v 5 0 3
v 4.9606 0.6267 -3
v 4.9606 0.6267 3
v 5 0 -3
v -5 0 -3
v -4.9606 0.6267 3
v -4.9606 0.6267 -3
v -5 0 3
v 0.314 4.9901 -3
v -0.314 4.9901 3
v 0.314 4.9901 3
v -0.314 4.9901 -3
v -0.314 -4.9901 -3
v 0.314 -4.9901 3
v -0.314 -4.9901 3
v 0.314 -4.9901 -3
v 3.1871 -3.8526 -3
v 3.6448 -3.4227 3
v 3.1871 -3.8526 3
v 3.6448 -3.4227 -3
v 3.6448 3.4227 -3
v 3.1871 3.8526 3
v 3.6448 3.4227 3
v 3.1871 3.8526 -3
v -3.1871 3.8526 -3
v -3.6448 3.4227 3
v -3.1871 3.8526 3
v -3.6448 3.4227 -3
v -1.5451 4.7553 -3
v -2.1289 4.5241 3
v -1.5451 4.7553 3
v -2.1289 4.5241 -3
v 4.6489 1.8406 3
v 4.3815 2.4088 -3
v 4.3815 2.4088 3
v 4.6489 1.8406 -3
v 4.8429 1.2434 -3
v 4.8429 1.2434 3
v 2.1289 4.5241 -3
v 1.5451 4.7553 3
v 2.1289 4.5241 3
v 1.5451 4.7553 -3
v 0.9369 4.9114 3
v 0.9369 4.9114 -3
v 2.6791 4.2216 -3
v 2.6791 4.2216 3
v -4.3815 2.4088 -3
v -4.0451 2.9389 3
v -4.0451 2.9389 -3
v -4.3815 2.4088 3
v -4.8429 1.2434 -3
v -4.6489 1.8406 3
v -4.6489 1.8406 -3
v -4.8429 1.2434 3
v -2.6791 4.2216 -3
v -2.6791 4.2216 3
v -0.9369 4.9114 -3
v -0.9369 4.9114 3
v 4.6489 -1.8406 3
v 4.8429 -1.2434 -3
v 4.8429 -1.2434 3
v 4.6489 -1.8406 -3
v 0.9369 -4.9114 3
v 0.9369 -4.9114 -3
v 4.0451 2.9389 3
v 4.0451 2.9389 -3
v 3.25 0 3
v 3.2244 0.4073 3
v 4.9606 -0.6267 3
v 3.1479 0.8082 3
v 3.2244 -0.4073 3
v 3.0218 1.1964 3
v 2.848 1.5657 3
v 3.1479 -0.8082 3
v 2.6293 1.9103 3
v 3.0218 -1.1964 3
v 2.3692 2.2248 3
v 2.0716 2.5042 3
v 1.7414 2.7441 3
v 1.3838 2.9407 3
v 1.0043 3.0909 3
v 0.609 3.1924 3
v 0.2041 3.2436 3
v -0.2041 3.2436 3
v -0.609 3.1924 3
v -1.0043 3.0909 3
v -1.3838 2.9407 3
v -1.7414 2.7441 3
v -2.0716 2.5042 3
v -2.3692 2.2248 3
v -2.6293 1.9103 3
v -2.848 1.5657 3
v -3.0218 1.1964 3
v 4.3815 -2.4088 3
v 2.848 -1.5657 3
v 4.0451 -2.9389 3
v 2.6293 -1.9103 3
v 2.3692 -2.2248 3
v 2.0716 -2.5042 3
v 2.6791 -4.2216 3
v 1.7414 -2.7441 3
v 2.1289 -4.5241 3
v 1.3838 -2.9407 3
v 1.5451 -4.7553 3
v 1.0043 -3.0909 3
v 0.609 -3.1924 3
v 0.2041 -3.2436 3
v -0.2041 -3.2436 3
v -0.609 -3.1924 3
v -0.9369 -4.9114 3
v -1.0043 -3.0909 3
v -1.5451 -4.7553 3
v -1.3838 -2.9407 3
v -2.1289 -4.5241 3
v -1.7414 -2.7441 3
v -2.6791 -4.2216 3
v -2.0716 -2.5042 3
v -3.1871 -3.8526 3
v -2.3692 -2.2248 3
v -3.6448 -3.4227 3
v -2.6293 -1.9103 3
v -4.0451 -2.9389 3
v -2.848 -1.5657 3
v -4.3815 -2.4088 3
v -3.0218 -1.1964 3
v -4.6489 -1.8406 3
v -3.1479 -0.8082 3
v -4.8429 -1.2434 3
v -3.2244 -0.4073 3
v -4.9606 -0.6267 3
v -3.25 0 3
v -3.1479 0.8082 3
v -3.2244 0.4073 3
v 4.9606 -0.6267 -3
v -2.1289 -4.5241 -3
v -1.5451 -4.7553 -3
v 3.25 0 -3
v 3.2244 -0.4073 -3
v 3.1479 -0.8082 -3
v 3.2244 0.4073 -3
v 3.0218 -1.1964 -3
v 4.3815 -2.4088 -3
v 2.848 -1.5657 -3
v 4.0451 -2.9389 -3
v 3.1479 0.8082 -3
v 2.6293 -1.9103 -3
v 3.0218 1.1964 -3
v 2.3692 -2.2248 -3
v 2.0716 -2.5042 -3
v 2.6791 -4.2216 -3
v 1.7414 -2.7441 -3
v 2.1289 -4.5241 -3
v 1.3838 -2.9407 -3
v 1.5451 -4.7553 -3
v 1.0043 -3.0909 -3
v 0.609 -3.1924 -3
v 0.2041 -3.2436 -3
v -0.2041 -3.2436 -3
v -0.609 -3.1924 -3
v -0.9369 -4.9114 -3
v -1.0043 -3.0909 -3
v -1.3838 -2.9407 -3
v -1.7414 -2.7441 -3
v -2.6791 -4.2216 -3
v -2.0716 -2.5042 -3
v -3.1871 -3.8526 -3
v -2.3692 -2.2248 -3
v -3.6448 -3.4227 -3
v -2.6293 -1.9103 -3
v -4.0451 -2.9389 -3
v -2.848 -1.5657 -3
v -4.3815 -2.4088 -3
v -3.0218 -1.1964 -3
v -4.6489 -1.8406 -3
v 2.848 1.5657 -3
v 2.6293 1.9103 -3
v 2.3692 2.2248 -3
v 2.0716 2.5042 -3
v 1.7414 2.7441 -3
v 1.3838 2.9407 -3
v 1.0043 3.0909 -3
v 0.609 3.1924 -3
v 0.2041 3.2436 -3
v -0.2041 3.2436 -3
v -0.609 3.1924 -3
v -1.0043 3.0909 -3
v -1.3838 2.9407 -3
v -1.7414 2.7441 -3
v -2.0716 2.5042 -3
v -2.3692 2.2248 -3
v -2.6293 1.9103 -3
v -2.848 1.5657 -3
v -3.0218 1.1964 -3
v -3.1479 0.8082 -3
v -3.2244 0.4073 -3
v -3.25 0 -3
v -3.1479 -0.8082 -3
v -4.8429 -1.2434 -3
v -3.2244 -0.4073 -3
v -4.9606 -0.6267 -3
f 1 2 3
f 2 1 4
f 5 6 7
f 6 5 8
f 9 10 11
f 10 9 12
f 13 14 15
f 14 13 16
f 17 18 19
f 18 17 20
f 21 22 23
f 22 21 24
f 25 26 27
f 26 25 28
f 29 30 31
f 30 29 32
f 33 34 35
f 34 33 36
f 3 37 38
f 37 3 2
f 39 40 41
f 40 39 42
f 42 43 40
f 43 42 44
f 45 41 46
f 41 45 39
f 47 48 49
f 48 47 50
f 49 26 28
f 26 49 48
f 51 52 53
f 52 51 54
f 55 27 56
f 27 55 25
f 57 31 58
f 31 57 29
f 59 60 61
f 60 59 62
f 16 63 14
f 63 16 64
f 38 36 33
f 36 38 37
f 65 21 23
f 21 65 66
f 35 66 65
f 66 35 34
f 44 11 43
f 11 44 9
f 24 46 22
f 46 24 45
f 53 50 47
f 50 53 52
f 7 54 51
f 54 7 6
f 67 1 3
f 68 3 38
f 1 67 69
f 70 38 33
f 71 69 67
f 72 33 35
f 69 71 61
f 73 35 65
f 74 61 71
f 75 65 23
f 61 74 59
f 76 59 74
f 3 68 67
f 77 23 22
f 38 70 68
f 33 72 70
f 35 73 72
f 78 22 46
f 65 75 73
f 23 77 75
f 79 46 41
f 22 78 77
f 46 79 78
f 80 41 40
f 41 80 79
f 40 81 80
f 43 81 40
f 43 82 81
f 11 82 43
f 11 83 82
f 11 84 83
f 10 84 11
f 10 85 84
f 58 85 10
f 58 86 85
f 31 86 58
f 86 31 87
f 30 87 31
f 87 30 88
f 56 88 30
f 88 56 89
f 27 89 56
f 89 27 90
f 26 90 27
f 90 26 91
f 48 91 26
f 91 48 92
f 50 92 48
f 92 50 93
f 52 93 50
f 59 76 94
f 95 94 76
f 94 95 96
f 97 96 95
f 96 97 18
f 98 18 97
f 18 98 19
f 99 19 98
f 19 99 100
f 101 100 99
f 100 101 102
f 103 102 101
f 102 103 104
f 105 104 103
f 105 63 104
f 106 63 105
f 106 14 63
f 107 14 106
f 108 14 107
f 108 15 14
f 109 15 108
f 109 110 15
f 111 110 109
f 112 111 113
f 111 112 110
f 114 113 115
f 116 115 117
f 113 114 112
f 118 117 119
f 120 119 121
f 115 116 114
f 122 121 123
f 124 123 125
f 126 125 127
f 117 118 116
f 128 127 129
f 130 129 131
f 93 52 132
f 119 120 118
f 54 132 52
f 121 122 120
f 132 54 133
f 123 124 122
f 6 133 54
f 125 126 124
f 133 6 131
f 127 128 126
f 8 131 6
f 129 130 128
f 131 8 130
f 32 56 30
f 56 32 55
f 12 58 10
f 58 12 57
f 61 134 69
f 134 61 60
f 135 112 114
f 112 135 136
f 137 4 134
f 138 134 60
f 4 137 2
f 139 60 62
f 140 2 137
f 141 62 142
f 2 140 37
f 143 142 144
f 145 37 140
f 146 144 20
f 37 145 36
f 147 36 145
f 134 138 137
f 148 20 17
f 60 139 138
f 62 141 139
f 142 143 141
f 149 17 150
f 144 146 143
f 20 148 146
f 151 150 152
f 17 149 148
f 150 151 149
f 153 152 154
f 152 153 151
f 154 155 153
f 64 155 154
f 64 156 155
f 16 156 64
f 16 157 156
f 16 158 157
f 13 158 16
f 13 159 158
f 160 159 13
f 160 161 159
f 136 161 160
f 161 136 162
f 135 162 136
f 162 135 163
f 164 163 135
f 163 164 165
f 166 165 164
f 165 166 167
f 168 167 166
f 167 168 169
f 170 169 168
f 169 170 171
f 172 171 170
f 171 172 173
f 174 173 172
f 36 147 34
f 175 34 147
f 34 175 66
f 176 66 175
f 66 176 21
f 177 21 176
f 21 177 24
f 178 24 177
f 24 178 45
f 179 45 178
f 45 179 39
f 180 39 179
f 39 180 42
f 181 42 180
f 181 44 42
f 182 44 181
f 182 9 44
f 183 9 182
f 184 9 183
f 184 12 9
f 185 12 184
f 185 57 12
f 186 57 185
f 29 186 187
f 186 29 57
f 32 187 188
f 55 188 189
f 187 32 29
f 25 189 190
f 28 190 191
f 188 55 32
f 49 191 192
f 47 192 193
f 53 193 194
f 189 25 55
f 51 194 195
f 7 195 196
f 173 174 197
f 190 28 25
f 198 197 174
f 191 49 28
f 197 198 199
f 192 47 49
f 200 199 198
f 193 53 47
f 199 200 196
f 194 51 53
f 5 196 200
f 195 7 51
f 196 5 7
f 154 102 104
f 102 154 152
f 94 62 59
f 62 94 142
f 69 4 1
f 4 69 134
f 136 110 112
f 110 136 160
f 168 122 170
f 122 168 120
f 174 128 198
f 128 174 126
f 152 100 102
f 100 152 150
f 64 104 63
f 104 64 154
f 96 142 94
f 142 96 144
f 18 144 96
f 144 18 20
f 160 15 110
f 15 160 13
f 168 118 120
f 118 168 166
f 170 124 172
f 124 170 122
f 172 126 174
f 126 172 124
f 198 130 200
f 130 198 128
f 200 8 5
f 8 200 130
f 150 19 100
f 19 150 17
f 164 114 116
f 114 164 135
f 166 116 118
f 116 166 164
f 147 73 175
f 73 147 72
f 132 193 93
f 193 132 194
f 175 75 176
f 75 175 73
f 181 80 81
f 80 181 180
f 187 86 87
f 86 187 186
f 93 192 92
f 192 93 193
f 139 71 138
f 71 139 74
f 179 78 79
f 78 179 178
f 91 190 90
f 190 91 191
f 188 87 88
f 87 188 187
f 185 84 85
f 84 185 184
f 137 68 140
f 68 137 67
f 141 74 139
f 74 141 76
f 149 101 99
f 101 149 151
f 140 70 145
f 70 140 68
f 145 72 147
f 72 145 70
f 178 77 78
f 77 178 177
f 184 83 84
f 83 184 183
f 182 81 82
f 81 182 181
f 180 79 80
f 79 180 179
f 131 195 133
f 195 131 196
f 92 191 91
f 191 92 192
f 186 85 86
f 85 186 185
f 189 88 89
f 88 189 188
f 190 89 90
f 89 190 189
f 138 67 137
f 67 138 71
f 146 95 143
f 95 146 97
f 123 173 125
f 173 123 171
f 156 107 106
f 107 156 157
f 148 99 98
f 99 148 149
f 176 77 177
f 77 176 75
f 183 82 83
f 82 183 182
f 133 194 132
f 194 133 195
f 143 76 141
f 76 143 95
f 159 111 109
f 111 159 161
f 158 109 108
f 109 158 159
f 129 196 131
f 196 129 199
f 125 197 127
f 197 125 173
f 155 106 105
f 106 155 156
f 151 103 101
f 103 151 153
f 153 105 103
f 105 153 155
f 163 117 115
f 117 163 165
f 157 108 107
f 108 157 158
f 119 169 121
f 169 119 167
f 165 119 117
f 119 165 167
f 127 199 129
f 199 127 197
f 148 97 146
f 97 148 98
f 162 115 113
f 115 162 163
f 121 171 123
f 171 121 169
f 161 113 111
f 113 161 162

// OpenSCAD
$fn = 50;


difference() {
	union() {
		translate(v = [0, 0, -3.0000000000]) {
			cylinder(h = 6, r = 5.0000000000);
		}
	}
	union() {
		translate(v = [0, 0, -100.0000000000]) {
			cylinder(h = 200, r = 3.2500000000);
		}
	}
}
